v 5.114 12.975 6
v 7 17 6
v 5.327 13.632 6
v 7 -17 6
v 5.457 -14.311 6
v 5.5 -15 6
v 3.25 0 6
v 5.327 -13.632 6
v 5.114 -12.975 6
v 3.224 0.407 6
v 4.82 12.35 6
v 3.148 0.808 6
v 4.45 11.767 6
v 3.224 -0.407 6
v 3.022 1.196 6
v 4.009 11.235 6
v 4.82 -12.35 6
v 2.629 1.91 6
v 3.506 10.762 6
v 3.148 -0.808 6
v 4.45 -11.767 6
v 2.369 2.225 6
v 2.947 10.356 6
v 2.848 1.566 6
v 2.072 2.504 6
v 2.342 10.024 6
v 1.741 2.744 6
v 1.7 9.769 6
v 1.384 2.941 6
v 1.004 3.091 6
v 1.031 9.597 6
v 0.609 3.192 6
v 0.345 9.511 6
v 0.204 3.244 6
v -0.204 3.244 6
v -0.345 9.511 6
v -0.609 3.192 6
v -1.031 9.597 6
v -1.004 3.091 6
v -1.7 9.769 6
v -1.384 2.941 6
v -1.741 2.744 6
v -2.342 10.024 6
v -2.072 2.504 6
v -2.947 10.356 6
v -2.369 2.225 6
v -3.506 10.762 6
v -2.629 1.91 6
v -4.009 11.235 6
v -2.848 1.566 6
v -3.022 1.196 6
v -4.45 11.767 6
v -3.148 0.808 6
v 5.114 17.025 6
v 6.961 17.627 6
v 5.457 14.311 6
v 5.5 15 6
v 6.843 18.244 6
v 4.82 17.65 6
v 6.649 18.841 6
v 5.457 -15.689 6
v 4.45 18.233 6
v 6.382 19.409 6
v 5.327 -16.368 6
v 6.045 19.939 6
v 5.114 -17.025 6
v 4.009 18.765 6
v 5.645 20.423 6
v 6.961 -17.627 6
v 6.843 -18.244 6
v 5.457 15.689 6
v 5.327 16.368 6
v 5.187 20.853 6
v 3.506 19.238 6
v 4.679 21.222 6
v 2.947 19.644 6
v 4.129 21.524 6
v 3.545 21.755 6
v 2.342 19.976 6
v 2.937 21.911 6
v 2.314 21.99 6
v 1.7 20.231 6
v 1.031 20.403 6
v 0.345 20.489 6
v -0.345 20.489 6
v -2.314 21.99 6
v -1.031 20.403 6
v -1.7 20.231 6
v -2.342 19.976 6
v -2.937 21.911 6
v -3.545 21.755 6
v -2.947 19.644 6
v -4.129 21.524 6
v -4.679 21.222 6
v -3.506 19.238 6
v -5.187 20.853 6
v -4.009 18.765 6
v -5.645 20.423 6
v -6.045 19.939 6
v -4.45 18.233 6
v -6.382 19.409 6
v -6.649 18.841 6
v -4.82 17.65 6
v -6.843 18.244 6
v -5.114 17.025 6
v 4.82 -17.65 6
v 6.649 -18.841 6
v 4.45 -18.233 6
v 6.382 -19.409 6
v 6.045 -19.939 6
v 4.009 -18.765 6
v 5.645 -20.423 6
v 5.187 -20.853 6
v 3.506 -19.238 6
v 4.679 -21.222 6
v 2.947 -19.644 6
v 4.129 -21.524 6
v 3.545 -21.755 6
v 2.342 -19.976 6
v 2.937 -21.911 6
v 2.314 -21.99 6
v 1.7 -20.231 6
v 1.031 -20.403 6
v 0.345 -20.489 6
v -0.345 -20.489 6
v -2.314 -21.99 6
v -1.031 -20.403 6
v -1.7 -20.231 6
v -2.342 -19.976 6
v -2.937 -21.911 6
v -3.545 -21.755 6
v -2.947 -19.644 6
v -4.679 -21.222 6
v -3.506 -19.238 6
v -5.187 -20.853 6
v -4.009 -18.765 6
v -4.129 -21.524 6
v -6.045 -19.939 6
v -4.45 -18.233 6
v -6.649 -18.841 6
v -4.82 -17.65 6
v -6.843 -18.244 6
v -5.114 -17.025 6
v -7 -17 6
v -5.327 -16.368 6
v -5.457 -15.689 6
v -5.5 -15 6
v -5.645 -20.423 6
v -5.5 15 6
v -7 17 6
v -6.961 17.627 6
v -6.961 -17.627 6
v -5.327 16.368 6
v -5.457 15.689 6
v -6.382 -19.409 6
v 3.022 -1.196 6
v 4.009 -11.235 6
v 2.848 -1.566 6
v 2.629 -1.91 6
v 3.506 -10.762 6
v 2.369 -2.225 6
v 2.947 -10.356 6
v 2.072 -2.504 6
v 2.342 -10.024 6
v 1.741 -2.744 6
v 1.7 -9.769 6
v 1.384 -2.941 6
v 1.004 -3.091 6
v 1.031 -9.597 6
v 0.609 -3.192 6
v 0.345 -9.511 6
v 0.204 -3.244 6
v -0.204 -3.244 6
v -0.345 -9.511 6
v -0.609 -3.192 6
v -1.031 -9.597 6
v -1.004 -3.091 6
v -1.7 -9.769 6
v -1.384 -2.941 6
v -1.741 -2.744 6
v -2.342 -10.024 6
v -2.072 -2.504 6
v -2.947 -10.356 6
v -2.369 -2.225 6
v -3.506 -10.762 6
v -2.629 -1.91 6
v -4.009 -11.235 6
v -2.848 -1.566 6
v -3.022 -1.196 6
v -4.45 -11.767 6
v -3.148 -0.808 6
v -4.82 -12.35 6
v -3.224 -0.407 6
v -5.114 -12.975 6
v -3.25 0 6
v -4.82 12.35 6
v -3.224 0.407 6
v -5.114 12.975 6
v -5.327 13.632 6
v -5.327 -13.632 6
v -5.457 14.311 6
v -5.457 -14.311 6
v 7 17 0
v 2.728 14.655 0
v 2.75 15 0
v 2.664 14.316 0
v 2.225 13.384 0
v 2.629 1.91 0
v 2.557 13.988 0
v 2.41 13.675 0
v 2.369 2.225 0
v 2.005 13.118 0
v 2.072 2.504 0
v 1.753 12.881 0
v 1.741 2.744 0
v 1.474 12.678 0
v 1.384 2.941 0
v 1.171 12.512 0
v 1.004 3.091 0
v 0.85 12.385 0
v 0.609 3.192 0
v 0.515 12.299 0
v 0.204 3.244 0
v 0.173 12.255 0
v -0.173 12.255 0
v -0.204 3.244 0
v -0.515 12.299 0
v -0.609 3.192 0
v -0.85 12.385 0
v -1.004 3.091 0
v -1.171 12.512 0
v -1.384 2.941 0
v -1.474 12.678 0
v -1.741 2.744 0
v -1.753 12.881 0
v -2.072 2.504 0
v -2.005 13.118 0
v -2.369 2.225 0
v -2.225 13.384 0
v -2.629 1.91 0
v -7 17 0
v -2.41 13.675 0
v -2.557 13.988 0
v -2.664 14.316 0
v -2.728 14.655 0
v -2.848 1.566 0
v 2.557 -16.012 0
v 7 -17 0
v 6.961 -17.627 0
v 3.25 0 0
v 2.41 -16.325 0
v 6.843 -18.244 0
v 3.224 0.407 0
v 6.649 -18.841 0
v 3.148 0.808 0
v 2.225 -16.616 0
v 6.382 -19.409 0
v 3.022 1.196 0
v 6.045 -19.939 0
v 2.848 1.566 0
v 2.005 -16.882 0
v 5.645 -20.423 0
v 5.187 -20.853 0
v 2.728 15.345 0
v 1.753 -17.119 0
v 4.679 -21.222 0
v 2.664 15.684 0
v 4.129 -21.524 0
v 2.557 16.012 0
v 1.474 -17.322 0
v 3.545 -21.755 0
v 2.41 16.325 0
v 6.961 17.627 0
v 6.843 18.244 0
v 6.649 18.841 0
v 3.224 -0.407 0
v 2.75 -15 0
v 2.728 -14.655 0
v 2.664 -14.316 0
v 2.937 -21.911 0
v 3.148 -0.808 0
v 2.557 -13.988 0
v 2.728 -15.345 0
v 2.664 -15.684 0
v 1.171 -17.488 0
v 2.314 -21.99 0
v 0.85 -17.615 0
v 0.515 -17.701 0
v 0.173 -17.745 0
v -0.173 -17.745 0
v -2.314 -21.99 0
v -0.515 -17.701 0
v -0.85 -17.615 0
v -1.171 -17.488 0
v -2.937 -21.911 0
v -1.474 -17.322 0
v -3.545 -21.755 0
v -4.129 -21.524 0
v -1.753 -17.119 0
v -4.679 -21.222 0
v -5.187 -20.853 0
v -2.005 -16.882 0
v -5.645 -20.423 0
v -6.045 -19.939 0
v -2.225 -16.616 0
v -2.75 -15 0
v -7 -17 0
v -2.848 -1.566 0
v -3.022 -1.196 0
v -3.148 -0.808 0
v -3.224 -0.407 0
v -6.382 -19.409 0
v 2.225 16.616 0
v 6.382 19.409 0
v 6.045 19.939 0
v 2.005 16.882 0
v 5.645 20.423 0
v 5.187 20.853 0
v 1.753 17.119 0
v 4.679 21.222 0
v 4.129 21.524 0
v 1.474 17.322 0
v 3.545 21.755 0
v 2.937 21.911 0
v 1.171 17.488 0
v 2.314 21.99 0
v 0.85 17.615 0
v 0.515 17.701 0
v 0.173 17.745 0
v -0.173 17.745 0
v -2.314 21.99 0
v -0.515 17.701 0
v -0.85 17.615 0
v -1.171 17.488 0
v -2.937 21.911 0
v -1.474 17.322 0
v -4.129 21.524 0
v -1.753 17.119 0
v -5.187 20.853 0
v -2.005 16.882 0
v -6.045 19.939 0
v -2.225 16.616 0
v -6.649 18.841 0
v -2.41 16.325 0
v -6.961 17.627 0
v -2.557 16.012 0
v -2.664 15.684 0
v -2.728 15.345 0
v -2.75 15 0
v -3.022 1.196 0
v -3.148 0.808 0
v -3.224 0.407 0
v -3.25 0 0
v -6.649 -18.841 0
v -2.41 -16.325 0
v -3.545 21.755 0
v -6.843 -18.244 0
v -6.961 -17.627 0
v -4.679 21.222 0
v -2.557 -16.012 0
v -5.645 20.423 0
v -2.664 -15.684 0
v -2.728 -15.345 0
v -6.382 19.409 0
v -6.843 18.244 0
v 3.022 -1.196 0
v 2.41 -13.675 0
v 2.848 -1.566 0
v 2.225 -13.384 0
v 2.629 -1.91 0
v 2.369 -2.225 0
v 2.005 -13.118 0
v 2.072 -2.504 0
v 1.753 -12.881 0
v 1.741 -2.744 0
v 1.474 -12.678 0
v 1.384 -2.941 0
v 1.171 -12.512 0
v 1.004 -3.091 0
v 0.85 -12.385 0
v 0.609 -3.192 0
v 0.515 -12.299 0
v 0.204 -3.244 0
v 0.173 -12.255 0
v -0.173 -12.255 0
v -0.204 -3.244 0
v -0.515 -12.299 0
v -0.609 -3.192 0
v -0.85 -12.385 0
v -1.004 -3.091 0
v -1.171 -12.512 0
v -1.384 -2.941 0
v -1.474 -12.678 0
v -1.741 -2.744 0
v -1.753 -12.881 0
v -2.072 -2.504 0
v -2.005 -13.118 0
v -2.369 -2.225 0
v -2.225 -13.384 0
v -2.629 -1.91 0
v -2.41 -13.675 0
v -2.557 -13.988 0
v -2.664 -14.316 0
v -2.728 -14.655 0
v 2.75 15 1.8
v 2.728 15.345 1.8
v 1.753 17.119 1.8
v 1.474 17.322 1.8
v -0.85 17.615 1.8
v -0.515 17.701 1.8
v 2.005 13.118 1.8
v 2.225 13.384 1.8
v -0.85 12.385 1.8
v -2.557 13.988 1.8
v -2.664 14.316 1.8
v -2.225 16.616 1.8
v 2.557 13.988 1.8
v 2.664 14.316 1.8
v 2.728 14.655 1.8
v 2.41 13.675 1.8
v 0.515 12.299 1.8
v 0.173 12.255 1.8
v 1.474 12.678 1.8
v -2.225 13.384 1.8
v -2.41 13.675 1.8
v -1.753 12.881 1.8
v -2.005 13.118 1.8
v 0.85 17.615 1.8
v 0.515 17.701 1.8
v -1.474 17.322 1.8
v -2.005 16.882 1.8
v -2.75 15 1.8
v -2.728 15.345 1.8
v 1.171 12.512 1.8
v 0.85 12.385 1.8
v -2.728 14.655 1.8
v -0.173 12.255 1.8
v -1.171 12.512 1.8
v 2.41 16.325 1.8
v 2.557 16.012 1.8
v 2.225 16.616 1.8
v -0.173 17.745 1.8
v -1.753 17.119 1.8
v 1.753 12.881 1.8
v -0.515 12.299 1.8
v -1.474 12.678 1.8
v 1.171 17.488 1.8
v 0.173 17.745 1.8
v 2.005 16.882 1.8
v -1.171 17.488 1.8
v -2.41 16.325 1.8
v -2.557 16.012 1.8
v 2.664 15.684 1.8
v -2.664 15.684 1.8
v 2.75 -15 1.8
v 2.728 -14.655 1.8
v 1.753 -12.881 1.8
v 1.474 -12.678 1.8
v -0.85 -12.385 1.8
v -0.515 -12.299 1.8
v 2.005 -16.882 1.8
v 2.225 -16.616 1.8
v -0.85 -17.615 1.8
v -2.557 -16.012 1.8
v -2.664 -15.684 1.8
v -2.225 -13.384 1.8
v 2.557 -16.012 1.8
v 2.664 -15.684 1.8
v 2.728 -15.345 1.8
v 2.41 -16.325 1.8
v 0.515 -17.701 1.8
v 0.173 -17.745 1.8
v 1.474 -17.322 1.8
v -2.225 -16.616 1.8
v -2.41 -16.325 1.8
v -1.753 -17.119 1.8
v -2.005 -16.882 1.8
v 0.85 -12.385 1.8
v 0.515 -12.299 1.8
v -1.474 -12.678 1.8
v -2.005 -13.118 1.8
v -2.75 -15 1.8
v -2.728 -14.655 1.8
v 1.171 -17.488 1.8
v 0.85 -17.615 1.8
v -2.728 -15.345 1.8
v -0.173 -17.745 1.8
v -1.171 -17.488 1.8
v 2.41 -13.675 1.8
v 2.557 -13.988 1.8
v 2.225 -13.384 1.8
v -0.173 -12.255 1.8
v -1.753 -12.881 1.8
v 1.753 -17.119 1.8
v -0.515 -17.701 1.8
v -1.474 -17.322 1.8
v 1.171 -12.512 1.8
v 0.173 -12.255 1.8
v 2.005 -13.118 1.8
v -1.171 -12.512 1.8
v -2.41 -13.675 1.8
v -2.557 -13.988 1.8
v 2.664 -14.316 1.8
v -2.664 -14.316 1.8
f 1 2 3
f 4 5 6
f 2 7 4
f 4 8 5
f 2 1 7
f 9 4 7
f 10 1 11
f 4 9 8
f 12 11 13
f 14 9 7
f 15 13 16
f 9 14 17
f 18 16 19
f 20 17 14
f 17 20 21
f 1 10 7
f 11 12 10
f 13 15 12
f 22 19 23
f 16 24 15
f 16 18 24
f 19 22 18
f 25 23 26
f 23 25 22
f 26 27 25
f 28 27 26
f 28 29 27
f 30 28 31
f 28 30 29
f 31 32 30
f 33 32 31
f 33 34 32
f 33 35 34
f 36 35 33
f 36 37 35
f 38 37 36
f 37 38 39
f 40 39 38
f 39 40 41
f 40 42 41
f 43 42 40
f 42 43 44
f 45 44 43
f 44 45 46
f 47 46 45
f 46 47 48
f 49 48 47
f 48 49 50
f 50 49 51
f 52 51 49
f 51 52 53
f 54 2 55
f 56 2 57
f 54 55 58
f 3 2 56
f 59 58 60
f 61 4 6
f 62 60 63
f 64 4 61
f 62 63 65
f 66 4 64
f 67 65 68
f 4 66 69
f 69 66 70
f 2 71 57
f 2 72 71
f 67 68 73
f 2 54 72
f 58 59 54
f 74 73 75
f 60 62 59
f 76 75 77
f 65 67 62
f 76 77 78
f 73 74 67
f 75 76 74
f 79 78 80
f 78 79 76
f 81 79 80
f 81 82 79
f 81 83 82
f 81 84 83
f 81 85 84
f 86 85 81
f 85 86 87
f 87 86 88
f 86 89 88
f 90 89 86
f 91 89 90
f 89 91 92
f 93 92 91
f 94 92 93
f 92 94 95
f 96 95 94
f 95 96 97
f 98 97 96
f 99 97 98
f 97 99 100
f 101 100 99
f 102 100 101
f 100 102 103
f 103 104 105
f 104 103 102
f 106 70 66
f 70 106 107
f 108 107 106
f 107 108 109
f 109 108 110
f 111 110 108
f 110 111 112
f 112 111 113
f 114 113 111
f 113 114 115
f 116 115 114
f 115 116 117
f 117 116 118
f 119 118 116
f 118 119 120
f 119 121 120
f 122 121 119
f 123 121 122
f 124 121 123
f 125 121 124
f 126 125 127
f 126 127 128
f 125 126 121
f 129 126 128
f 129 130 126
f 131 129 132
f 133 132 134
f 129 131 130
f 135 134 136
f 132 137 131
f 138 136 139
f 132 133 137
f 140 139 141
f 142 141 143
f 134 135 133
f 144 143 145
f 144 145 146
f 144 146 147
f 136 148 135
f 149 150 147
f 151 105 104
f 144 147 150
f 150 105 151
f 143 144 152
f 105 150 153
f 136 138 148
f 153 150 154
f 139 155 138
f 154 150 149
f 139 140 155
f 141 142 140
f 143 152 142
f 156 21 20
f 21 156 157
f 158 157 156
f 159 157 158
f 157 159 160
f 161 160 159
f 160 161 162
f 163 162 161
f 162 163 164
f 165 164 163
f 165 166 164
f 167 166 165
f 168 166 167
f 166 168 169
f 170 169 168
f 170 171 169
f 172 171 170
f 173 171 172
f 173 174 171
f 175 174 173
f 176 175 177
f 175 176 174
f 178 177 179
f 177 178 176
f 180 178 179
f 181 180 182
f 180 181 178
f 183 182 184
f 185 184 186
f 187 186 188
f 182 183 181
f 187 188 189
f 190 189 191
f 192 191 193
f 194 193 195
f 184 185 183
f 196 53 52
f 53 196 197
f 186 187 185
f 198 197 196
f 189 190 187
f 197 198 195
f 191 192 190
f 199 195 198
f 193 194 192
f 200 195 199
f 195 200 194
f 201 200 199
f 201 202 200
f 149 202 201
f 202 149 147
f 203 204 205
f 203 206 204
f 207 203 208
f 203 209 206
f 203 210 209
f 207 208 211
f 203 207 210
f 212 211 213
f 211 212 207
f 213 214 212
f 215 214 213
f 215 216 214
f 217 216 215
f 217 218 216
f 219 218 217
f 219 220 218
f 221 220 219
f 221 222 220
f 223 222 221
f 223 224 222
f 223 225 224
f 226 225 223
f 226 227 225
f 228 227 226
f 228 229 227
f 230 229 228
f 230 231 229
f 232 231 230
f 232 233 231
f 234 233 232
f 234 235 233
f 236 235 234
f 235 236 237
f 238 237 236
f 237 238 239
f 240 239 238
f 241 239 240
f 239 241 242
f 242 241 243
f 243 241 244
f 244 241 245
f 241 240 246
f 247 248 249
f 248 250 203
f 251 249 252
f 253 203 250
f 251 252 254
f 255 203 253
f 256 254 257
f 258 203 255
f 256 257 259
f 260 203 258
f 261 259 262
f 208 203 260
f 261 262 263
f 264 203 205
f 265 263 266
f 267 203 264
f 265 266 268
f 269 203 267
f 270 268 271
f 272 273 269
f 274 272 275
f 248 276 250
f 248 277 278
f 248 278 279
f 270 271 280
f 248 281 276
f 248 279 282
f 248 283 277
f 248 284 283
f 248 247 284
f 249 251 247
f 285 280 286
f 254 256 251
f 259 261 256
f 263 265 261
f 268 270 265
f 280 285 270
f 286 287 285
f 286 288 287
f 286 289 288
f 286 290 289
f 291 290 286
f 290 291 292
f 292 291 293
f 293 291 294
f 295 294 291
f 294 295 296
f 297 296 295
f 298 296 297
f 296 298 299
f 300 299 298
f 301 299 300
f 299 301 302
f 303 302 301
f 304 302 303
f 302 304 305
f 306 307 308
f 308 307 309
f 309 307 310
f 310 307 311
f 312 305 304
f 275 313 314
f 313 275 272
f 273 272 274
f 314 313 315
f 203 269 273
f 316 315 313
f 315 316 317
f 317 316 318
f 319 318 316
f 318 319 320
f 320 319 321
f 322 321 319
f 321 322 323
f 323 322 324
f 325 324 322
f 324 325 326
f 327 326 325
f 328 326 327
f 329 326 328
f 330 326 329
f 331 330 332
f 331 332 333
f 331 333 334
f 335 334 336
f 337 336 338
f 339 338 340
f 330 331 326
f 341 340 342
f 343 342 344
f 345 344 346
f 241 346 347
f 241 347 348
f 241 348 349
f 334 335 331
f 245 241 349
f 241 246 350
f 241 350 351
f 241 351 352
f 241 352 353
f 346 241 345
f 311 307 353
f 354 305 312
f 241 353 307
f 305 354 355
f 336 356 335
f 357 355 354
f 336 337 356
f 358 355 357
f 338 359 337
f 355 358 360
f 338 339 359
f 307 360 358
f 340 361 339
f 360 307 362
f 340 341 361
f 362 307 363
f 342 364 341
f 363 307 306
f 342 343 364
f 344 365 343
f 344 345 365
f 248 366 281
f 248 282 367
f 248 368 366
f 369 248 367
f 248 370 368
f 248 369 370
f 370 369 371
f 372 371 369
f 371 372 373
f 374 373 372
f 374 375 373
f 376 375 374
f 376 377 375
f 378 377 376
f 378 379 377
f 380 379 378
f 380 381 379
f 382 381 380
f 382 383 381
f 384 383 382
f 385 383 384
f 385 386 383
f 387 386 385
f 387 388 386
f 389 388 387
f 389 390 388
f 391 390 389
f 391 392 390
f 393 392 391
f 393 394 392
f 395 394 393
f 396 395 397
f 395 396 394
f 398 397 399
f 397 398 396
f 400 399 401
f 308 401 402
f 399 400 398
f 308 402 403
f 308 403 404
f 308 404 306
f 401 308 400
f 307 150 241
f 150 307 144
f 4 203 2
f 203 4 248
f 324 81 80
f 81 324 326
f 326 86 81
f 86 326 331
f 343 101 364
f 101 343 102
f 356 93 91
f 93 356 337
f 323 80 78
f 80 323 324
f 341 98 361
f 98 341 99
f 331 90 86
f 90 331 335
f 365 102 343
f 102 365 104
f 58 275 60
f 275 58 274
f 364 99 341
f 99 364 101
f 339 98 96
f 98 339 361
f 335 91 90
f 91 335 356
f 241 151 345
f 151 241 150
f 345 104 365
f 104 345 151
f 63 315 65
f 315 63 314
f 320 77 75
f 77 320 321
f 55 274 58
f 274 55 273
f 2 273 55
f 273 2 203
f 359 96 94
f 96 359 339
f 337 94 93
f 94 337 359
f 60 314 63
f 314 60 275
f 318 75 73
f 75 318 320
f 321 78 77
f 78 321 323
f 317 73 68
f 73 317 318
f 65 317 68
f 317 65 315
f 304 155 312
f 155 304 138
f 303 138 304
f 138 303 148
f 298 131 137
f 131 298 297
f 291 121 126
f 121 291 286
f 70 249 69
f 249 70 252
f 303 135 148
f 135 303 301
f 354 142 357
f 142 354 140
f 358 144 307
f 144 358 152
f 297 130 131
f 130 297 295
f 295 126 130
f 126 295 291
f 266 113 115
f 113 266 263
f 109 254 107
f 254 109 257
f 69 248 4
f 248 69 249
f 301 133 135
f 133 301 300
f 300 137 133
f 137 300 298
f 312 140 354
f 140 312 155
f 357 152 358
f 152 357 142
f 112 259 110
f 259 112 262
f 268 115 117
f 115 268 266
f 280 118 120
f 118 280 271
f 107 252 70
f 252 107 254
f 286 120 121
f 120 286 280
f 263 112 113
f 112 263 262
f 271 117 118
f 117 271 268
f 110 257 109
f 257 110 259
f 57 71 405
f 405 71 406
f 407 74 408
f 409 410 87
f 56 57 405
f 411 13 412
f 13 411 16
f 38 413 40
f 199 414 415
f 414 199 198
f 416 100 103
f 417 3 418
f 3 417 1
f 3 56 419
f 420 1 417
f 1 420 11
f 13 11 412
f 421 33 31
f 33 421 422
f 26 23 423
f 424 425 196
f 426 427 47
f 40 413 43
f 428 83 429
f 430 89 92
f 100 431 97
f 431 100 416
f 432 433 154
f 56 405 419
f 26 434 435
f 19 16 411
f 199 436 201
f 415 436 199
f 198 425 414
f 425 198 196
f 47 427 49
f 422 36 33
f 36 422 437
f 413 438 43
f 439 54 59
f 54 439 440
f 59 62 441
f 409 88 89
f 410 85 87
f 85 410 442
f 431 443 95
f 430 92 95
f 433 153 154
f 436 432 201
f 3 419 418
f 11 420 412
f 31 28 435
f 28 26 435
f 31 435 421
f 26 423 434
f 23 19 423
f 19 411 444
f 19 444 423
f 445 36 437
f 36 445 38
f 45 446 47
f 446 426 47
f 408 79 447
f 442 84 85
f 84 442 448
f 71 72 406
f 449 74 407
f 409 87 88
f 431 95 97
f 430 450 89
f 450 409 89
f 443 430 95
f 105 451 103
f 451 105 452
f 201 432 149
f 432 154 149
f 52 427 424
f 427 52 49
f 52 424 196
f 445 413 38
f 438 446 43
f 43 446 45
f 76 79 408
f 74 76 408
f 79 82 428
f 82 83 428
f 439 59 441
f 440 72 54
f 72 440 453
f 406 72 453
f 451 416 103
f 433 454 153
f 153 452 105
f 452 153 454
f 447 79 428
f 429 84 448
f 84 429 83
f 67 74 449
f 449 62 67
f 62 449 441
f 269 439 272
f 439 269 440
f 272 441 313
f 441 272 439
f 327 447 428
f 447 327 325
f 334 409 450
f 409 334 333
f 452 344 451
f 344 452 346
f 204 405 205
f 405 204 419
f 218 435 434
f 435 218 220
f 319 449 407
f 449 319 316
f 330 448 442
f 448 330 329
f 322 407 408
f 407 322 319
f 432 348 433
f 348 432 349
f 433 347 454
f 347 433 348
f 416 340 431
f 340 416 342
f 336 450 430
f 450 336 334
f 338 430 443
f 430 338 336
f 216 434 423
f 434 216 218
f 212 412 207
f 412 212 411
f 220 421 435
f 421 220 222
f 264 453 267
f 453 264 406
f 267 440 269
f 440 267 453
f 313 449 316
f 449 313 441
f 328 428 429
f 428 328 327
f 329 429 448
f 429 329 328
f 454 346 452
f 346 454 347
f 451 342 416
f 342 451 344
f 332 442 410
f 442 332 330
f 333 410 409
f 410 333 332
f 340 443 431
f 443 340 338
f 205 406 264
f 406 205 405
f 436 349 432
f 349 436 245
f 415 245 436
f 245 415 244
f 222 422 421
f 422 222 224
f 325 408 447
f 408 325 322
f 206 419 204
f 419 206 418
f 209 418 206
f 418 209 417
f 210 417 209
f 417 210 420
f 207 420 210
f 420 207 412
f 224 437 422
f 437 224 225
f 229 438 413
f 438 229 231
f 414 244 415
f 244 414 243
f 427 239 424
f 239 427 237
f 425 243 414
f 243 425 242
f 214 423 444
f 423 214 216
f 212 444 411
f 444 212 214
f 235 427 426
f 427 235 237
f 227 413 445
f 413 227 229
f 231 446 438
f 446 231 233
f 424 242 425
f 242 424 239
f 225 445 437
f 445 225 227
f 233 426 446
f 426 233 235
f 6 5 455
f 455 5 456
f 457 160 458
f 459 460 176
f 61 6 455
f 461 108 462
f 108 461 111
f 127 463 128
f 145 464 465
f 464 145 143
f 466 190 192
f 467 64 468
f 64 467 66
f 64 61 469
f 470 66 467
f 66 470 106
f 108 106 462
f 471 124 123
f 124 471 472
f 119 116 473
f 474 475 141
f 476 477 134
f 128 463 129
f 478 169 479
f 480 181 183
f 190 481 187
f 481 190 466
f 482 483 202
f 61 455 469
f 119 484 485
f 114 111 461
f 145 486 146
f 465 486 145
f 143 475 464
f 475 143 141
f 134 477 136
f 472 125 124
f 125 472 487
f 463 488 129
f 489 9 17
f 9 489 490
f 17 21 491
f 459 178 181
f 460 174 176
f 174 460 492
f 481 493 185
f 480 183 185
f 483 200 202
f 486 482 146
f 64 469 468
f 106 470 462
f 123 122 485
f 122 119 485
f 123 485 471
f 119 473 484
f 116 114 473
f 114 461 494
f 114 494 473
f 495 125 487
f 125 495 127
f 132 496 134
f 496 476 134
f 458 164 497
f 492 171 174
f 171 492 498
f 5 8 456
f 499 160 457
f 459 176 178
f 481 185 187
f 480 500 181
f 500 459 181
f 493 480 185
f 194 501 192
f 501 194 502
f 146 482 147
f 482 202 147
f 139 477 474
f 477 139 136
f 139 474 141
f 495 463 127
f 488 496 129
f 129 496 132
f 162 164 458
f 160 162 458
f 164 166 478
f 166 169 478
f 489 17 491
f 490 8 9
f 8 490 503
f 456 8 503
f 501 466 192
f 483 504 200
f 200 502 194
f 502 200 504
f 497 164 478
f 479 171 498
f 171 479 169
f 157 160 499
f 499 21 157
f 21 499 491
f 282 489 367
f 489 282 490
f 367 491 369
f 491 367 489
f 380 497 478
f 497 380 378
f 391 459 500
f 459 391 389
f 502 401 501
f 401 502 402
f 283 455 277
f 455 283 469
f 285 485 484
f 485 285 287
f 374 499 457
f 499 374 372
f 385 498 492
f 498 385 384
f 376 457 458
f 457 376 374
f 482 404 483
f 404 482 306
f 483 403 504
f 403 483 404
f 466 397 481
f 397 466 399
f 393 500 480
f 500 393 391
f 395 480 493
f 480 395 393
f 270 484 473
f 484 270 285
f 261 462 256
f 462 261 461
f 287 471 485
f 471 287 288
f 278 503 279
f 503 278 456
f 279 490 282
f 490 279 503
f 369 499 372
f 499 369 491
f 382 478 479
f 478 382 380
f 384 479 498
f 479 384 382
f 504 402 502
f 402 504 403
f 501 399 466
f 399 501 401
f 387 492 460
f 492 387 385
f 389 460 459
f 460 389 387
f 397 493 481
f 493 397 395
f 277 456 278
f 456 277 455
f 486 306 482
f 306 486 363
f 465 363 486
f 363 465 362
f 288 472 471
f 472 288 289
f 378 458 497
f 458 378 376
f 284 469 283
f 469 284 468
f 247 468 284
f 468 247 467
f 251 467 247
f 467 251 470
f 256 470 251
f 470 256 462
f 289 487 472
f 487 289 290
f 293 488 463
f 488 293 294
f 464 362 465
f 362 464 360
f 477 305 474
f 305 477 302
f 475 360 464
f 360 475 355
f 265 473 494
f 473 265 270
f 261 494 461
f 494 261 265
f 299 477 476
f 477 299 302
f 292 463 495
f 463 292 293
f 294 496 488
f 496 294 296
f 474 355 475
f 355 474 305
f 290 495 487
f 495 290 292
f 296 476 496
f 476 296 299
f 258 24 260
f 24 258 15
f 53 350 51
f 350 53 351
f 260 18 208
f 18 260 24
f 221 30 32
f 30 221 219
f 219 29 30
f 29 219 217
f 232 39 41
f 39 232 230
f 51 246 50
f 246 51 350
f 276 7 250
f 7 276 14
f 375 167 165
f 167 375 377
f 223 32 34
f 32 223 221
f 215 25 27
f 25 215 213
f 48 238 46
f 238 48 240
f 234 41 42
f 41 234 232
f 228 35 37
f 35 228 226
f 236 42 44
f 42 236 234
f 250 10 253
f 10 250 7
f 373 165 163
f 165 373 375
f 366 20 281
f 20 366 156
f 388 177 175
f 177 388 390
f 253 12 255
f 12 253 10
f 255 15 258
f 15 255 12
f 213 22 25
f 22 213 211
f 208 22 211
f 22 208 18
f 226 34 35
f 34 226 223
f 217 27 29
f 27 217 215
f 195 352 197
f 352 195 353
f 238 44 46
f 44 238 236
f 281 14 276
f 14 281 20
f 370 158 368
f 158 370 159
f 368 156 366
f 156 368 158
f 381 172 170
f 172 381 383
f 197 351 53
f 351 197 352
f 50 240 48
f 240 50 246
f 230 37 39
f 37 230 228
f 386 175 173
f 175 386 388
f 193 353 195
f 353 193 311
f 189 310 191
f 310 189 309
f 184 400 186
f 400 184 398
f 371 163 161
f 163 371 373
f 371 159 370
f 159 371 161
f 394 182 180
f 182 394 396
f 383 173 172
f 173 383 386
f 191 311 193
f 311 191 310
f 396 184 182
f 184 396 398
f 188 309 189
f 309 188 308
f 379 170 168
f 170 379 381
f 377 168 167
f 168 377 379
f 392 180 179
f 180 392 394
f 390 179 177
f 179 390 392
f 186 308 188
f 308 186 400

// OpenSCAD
$fn = 50;


difference() {
	union() {
		cylinder(h = 6, r = 7.0000000000);
		translate(v = [0.0000000000, 7.5000000000, 0]) {
			hull() {
				translate(v = [-2.0000000000, 9.5000000000, 0]) {
					cylinder(h = 6, r = 5);
				}
				translate(v = [2.0000000000, 9.5000000000, 0]) {
					cylinder(h = 6, r = 5);
				}
				translate(v = [-2.0000000000, -9.5000000000, 0]) {
					cylinder(h = 6, r = 5);
				}
				translate(v = [2.0000000000, -9.5000000000, 0]) {
					cylinder(h = 6, r = 5);
				}
			}
		}
		translate(v = [0.0000000000, 7.5000000000, 0]) {
			hull() {
				translate(v = [-2.0000000000, 9.5000000000, 0]) {
					cylinder(h = 6, r = 5);
				}
				translate(v = [2.0000000000, 9.5000000000, 0]) {
					cylinder(h = 6, r = 5);
				}
				translate(v = [-2.0000000000, -9.5000000000, 0]) {
					cylinder(h = 6, r = 5);
				}
				translate(v = [2.0000000000, -9.5000000000, 0]) {
					cylinder(h = 6, r = 5);
				}
			}
		}
		translate(v = [0.0000000000, -7.5000000000, 0]) {
			hull() {
				translate(v = [-2.0000000000, 9.5000000000, 0]) {
					cylinder(h = 6, r = 5);
				}
				translate(v = [2.0000000000, 9.5000000000, 0]) {
					cylinder(h = 6, r = 5);
				}
				translate(v = [-2.0000000000, -9.5000000000, 0]) {
					cylinder(h = 6, r = 5);
				}
				translate(v = [2.0000000000, -9.5000000000, 0]) {
					cylinder(h = 6, r = 5);
				}
			}
		}
		translate(v = [0.0000000000, -7.5000000000, 0]) {
			hull() {
				translate(v = [-2.0000000000, 9.5000000000, 0]) {
					cylinder(h = 6, r = 5);
				}
				translate(v = [2.0000000000, 9.5000000000, 0]) {
					cylinder(h = 6, r = 5);
				}
				translate(v = [-2.0000000000, -9.5000000000, 0]) {
					cylinder(h = 6, r = 5);
				}
				translate(v = [2.0000000000, -9.5000000000, 0]) {
					cylinder(h = 6, r = 5);
				}
			}
		}
	}
	union() {
		translate(v = [0.0000000000, 15.0000000000, 6]) {
			rotate(a = [0, 0, 0]) {
				difference() {
					union() {
						#translate(v = [0, 0, -6.0000000000]) {
							cylinder(h = 6, r = 2.2500000000);
						}
						#translate(v = [0, 0, -4.2000000000]) {
							cylinder(h = 4.2000000000, r1 = 2.7500000000, r2 = 5.5000000000);
						}
						#translate(v = [0, 0, -6.0000000000]) {
							cylinder(h = 6, r = 2.7500000000);
						}
						#translate(v = [0, 0, -6.0000000000]) {
							cylinder(h = 6, r = 2.2500000000);
						}
					}
					union();
				}
			}
		}
		translate(v = [0.0000000000, 15.0000000000, 6]) {
			rotate(a = [0, 0, 0]) {
				difference() {
					union() {
						#translate(v = [0, 0, -6.0000000000]) {
							cylinder(h = 6, r = 2.2500000000);
						}
						#translate(v = [0, 0, -4.2000000000]) {
							cylinder(h = 4.2000000000, r1 = 2.7500000000, r2 = 5.5000000000);
						}
						#translate(v = [0, 0, -6.0000000000]) {
							cylinder(h = 6, r = 2.7500000000);
						}
						#translate(v = [0, 0, -6.0000000000]) {
							cylinder(h = 6, r = 2.2500000000);
						}
					}
					union();
				}
			}
		}
		translate(v = [0.0000000000, -15.0000000000, 6]) {
			rotate(a = [0, 0, 0]) {
				difference() {
					union() {
						#translate(v = [0, 0, -6.0000000000]) {
							cylinder(h = 6, r = 2.2500000000);
						}
						#translate(v = [0, 0, -4.2000000000]) {
							cylinder(h = 4.2000000000, r1 = 2.7500000000, r2 = 5.5000000000);
						}
						#translate(v = [0, 0, -6.0000000000]) {
							cylinder(h = 6, r = 2.7500000000);
						}
						#translate(v = [0, 0, -6.0000000000]) {
							cylinder(h = 6, r = 2.2500000000);
						}
					}
					union();
				}
			}
		}
		translate(v = [0.0000000000, -15.0000000000, 6]) {
			rotate(a = [0, 0, 0]) {
				difference() {
					union() {
						#translate(v = [0, 0, -6.0000000000]) {
							cylinder(h = 6, r = 2.2500000000);
						}
						#translate(v = [0, 0, -4.2000000000]) {
							cylinder(h = 4.2000000000, r1 = 2.7500000000, r2 = 5.5000000000);
						}
						#translate(v = [0, 0, -6.0000000000]) {
							cylinder(h = 6, r = 2.7500000000);
						}
						#translate(v = [0, 0, -6.0000000000]) {
							cylinder(h = 6, r = 2.2500000000);
						}
					}
					union();
				}
			}
		}
		translate(v = [0, 0, -100]) {
			cylinder(h = 200, r = 3.2500000000);
		}
		translate(v = [0, 0, -100]) {
			cylinder(h = 200, r = 1.8000000000);
		}
	}
}
